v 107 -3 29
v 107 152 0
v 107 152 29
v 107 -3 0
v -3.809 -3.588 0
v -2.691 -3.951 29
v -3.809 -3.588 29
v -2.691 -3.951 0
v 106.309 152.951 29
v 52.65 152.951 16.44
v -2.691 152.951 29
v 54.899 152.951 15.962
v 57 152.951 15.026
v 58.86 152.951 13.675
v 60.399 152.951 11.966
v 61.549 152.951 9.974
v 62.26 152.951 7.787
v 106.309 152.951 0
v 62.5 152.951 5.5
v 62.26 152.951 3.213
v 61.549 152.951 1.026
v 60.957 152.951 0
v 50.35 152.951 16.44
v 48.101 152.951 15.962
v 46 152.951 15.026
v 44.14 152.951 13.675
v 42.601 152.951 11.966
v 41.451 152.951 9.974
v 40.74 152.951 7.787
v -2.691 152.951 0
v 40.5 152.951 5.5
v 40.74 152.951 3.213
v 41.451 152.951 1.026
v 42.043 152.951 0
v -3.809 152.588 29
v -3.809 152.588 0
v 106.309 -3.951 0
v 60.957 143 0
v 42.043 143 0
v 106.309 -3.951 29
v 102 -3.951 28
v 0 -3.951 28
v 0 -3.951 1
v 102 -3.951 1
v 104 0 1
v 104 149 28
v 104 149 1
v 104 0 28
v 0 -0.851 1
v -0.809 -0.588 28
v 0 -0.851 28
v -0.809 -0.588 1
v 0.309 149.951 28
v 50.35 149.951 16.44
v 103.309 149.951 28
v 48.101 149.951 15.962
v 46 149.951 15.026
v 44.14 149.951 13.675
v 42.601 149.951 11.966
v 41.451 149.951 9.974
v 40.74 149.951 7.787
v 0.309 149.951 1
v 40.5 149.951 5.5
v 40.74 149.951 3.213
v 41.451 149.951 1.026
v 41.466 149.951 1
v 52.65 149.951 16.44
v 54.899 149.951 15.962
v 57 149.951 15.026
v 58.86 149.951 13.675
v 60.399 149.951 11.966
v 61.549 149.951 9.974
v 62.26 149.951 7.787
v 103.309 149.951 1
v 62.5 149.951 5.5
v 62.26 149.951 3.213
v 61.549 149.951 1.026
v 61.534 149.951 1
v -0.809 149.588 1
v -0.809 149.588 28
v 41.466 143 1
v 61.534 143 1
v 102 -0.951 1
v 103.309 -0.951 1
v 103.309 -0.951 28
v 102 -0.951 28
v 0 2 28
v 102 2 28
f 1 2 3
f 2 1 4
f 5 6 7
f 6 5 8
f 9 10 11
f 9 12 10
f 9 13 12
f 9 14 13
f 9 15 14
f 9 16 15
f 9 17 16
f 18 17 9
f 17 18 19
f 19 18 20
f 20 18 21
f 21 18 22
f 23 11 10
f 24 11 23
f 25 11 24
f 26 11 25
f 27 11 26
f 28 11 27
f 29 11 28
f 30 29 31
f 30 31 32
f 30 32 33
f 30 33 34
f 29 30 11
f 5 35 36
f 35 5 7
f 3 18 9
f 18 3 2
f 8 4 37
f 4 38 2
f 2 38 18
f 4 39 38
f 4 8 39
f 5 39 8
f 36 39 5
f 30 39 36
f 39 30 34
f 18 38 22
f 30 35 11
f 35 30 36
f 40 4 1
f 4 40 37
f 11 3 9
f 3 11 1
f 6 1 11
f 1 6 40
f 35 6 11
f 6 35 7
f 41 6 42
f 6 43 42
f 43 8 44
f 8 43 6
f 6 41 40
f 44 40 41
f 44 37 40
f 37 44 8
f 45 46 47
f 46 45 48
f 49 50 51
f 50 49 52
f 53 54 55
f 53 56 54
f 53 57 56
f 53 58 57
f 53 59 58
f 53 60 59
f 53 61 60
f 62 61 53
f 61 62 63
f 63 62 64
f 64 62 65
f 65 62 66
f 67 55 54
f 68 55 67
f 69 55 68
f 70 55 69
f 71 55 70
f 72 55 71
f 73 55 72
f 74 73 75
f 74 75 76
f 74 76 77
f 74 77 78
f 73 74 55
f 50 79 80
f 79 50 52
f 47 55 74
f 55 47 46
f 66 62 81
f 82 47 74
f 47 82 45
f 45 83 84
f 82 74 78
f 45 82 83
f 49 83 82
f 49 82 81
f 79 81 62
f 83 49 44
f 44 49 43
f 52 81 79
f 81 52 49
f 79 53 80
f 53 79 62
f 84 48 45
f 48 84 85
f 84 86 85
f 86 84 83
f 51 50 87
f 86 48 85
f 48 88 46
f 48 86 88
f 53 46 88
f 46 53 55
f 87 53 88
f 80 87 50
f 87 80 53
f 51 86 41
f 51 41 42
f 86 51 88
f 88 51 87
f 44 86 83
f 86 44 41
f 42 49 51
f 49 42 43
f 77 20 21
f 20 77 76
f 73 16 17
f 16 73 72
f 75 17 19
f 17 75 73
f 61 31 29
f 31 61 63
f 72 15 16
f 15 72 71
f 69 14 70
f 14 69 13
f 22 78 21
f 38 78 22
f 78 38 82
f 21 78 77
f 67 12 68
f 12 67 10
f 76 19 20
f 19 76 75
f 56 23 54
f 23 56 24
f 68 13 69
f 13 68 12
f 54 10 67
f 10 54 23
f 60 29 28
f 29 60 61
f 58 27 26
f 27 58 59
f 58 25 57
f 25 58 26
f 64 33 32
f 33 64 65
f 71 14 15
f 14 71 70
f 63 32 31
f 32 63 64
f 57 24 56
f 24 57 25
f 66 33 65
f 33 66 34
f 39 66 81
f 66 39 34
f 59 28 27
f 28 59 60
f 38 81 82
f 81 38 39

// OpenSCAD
// file: case.scad
module case (width, length, wall_height, wall_thickness, x_offset, y_offset, z_offset){
    //Negative space
    top_right_point = [width + x_offset, length + y_offset, z_offset];
    top_left_point = [width + x_offset, y_offset, z_offset];
    bottom_right_point = [x_offset, length + y_offset, z_offset];
    bottom_left_point = [x_offset, y_offset, z_offset];

    //Base space
    top_right_point_base = [width + wall_thickness, length + wall_thickness, 0];
    top_left_point_base = [width + wall_thickness, -wall_thickness, 0];
    bottom_right_point_base = [-wall_thickness, length + wall_thickness, 0];
    bottom_left_point_base = [-wall_thickness, -wall_thickness, 0];
    
    //Lists for the for loops
    base_points = [top_right_point_base, top_left_point_base, bottom_right_point_base, bottom_left_point_base];
    points = [top_right_point, top_left_point, bottom_right_point, bottom_left_point];

    difference(){
        hull(){
            for (point = base_points){
                translate(point){
                    cylinder(height);
                }
            }
        }
        hull(){
            for (point = points){
                translate(point){
                    cylinder(height);
                }
            }
        }
    }
}

module roofed_case(width, length, wall_height, wall_thickness, x_offset, y_offset, z_offset, roof_thickness){
    case(width, length, wall_height, wall_thickness, x_offset, y_offset, z_offset);
    top_right_point_base = [width + wall_thickness, length + wall_thickness, wall_height];
    top_left_point_base = [width + wall_thickness, -wall_thickness, wall_height ];
    bottom_right_point_base = [-wall_thickness, length + wall_thickness, wall_height];
    bottom_left_point_base = [-wall_thickness, -wall_thickness, wall_height];
    points = [top_right_point_base, top_left_point_base, bottom_right_point_base, bottom_left_point_base];
    hull(){
           for(point = points){
               translate(point) cylinder(roof_thickness);
           }
    }
    
}

//Changeable values
width = 100;
length = 100;
wall_height = 10;
x_offset = 0;
y_offset = 0;
z_offset = 1;
wall_thickness = 3;
roof_thickness = 3;

//Non-changeable values
height = z_offset + wall_height;

//This is for making sure it renders correctly
/*
translate([0, 0, wall_height + 10]){
    case(width,
        length,
        wall_height,
        wall_thickness,
        x_offset,
        y_offset,
        z_offset);
}

roofed_case(width,
     length,
     wall_height,
     wall_thickness,
     x_offset,
     y_offset,
     z_offset);
*/
// main file
include<case.scad>

//Changeable values
width = 103;
length = 149;
wall_height = 28;
x_offset = 0;
y_offset = 0;
z_offset = 1;
wall_thickness = 3;
roof_thickness = 2;

//Opening
disk_x = 102;
disk_y = wall_thickness + 3;
disk_z = 27;
position_disk_x = 0;
position_disk_y = -4;
position_disk_z = z_offset;

//Manual eject
heigh_eject = 10;
radius_1_eject = 22/2;
radius_2_eject = 22/2;
position_eject_x = width/2;
position_eject_y = 153;
position_eject_z = radius_1_eject/2;
rotate_eject_x = 90;
rotate_eject_y = 0;
rotate_eject_z = -0;

//Non-changeable values
height = z_offset + wall_height;

module make_35_holder(){
	difference(){
		roofed_case(width,
		     length,
		     wall_height,
		     wall_thickness,
		     x_offset,
		     y_offset,
		     z_offset);
		translate([position_disk_x, position_disk_y, position_disk_z]) {
		    color([0, 1, 0]) cube([disk_x, disk_y, disk_z]);
		}
		translate([position_eject_x, position_eject_y, position_eject_z]){
		    rotate([rotate_eject_x, rotate_eject_y, rotate_eject_z]){
			    color([0, 1, 0]) cylinder(heigh_eject, radius_1_eject, radius_2_eject);
		    }
		}
	}
}
make_35_holder();
